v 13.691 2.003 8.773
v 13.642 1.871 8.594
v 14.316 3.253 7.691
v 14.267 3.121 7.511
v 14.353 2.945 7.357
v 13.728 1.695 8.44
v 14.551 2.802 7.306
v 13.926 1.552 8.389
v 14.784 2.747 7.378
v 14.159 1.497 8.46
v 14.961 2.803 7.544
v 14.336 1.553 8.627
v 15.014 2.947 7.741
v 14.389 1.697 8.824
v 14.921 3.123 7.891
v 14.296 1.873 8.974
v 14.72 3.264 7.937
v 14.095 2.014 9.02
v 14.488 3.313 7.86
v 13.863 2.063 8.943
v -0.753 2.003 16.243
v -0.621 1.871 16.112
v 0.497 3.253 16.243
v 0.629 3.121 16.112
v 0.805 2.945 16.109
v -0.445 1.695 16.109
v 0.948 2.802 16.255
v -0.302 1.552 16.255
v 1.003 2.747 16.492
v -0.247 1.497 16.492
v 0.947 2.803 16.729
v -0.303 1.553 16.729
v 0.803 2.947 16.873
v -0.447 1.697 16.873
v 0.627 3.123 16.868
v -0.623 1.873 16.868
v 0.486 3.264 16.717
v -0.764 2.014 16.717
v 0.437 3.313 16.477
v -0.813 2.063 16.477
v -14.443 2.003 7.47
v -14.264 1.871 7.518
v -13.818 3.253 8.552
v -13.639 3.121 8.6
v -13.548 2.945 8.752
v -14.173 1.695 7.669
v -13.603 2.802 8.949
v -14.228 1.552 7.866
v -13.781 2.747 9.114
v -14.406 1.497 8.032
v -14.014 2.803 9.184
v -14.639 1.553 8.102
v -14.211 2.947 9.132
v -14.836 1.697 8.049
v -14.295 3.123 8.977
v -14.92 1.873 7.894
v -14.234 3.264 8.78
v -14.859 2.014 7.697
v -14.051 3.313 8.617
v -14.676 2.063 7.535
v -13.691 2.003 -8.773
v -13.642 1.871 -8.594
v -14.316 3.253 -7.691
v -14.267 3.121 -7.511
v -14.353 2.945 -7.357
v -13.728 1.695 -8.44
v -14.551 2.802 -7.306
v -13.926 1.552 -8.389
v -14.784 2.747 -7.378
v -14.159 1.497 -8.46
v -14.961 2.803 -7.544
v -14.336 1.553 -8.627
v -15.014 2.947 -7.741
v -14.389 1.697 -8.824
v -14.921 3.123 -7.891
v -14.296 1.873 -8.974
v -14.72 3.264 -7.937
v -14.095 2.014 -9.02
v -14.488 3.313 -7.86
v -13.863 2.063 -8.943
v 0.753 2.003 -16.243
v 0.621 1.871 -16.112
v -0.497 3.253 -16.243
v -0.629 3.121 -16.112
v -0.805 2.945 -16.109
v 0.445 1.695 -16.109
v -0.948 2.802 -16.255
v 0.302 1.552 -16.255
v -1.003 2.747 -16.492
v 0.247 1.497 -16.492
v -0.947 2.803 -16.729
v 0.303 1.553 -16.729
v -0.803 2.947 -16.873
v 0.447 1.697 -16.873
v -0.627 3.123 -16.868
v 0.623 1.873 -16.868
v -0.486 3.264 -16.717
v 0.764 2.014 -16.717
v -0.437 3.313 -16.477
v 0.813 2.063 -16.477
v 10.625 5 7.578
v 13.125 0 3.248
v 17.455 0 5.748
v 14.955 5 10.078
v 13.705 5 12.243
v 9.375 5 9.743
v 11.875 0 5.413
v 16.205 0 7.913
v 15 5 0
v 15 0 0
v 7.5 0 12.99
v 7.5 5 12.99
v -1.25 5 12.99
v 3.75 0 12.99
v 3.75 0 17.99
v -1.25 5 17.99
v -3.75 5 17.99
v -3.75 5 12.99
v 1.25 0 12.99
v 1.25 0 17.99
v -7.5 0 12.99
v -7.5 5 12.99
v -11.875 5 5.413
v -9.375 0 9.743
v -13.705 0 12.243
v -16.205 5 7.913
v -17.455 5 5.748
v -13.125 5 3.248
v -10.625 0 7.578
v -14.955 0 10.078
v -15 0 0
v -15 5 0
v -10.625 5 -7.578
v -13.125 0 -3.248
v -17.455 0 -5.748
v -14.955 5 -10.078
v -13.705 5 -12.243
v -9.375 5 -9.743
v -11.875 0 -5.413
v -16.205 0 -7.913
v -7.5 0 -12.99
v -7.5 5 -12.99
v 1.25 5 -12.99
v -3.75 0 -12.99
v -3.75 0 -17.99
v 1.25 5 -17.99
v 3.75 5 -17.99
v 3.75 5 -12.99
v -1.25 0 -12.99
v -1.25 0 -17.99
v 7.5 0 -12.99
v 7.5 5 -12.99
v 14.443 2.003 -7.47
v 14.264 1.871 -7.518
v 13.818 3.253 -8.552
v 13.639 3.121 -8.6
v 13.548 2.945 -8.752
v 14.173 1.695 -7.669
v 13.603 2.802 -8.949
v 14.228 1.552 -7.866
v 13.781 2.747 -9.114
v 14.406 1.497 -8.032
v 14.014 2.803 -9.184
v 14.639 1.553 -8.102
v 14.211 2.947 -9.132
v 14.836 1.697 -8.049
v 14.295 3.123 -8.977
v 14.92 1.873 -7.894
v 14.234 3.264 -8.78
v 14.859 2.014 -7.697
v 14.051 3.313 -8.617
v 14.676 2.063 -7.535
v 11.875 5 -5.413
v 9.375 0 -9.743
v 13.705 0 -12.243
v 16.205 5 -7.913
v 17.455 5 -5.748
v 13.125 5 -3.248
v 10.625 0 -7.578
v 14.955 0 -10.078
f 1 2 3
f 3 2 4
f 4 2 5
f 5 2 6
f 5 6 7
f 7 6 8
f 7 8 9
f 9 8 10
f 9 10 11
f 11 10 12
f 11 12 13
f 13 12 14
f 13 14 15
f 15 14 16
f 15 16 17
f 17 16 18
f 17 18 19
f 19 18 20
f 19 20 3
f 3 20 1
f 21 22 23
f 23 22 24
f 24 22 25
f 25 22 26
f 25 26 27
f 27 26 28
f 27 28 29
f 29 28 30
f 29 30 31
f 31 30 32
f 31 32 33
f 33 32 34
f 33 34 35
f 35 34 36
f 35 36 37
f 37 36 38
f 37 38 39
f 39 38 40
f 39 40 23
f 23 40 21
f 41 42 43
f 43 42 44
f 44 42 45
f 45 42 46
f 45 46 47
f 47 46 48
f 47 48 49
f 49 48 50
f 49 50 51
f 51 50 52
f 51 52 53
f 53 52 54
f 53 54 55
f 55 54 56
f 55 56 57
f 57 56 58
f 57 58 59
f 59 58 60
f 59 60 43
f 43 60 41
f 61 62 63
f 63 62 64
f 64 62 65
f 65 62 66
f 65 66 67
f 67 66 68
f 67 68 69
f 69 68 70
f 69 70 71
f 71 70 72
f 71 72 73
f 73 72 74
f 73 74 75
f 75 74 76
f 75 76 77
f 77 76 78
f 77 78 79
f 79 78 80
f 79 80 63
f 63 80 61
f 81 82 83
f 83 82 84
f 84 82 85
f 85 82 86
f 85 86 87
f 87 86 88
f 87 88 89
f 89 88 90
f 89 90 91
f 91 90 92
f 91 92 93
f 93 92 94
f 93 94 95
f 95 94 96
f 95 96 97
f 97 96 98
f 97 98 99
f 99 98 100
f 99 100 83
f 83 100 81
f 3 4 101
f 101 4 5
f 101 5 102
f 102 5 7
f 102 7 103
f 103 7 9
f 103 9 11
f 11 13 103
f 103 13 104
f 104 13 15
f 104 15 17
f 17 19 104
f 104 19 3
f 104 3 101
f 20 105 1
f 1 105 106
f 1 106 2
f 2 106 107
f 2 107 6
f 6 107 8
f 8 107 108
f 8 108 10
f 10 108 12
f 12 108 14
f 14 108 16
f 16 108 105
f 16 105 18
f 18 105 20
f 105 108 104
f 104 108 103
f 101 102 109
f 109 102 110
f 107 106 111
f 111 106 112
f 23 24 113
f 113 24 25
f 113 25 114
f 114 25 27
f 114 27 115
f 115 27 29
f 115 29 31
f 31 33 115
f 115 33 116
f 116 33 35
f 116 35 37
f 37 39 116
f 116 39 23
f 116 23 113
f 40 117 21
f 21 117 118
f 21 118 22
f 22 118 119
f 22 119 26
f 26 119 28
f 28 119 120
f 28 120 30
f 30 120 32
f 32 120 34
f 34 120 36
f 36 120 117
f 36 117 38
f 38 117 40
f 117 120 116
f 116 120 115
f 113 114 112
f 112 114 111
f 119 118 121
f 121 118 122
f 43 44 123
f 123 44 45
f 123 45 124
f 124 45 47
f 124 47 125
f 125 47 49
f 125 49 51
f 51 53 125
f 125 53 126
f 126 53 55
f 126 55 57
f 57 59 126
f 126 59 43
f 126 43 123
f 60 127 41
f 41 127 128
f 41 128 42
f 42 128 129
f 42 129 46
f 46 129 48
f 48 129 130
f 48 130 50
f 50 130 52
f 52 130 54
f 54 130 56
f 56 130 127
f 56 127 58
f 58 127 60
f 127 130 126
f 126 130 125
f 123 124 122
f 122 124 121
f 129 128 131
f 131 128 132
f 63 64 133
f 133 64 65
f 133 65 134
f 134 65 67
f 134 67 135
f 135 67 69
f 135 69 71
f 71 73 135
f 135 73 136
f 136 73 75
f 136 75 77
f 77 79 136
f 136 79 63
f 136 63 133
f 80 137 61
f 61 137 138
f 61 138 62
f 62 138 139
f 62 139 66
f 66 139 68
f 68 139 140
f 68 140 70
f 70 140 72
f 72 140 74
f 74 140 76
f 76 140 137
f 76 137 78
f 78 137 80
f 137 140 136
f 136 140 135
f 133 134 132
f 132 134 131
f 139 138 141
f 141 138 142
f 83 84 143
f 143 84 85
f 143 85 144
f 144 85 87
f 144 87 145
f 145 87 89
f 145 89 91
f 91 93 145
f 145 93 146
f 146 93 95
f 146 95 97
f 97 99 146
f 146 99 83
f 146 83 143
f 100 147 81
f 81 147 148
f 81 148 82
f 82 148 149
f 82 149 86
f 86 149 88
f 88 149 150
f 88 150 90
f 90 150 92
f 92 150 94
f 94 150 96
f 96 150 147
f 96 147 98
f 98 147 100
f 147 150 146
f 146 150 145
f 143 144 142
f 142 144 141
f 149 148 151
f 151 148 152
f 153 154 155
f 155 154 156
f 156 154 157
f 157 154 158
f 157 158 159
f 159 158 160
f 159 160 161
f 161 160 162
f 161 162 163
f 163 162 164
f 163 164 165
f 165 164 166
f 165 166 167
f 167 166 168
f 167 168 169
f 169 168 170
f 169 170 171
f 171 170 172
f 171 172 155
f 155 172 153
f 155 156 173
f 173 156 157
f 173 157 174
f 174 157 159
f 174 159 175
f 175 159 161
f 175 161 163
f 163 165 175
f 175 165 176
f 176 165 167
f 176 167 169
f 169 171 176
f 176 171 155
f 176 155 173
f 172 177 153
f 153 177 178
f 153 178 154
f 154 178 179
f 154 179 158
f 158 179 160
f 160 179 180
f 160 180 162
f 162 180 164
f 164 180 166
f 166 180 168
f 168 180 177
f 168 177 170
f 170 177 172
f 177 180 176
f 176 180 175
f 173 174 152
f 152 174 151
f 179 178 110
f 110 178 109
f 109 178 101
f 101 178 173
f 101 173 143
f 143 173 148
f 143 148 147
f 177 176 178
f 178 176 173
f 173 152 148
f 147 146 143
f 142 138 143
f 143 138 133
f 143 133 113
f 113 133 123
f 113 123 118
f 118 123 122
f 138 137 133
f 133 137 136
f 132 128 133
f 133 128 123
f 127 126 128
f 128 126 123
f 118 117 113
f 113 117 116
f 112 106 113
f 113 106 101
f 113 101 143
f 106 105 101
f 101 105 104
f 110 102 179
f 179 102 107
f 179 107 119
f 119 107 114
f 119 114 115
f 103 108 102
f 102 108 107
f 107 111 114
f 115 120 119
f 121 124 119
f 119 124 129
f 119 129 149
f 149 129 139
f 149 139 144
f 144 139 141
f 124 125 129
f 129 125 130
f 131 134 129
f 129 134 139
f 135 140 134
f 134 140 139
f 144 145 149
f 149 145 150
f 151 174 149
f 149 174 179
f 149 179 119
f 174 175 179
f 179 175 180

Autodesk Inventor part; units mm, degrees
ref_plane "YZ Plane" through (0, 0, 0) normal (1, 0, 0) x (0, 1, 0)
ref_plane "XZ Plane" through (0, 0, 0) normal (0, 1, 0) x (-1, 0, 0)
ref_plane "XY Plane" through (0, 0, 0) normal (0, 0, 1) x (1, 0, 0)
sketch "Sketch1" plane through (0, 0, 0) normal (0, 1, 0) x (-1, 0, 0)
  circle A0 centre (0, 0) radius 15
  circle A1 centre (0, 0) radius 10
  line L0 (0, 0) -> (-15, 0)
  line L1 (-15, 0) -> (-7.5, 12.9904)
  line L2 (-7.5, 12.9904) -> (0, 0)
  line L3 (-7.5, 12.9904) -> (7.5, 12.9904)
  line L4 (7.5, 12.9904) -> (15, 0)
  line L5 (15, 0) -> (7.5, -12.9904)
  line L6 (7.5, -12.9904) -> (-7.5, -12.9904)
  line L7 (-7.5, -12.9904) -> (-15, 0)
  line L8 (0, 0) -> (7.5, 12.9904)
  line L9 (0, 0) -> (15, 0)
  line L10 (0, 0) -> (7.5, -12.9904)
  line L11 (0, 0) -> (-7.5, -12.9904)
extrude "Extrusion3" add sketch "Sketch1" along normal blind 5 contours L7 L0 A1 L11 | L11 A1 L0
sketch "Sketch5" plane through (7.5, 0, -12.9904) normal (0.866, 0, -0.5) x (-0.5, 0, -0.866)
  line L0 (-15, 0) -> (0, 0) projected
  line L1 (0, 0) -> (0, 5) projected
  line L2 (-15, 5) -> (0, 5) projected
  line L3 (-15, 0) -> (-15, 5) projected
  line L4 (0, 0) -> (-15, 5)
  line L5 (-15, 0) -> (0, 5)
  line L6 (-7.5, 2.5) -> (-7.5, 5)
  line L7 (-7.5, 5) -> (-10, 5)
  line L8 (-10, 5) -> (-7.5, 2.5)
  line L9 (-7.5, 2.5) -> (-5, 0)
  line L10 (-10, 5) -> (-8.75, 5)
  line L11 (-8.75, 5) -> (-3.75, 0)
  line L12 (-3.75, 0) -> (-6.25, 0)
  line L13 (-6.25, 0) -> (-11.25, 5)
  line L14 (-10, 5) -> (-11.25, 5)
  dimension "d18" = 2.5
  dimension "d19" = 2.5
extrude "Extrusion4" add sketch "Sketch5" along normal blind 5 contours L13 L5 L9 L0 | L13 L4 L5 | L9 L4 L11 L0 | L2 L8 L4 L13 | L5 L11 L4 | L6 L11 L5 | L8 L2 L11 L6
sketch "Sketch6" plane through (11.875, 5, -5.4127) normal (-0.3536, 0.7071, -0.6124) x (0.866, 0, -0.5)
  line L0 (0, 0) -> (0, 7.0711) projected
  line L1 (0, 0) -> (5, 0) projected
  line L2 (5, 7.0711) -> (5, 0) projected
  line L3 (0, 7.0711) -> (5, 7.0711) projected
  line L4 (0, 0) -> (5, 7.0711)
  line L5 (5, 0) -> (0, 7.0711)
  line L6 (2.5, 3.5355) -> (2.5, 2.7855)
  line L7 (2.5, 2.7855) -> (3.5, 2.7855)
  circle A0 centre (3.5, 2.7855) radius 0.4
  point P0 (3.2526, 2.4712)
  point P1 (3.1212, 2.657)
  dimension "d22" = 0.75
  dimension "d26" = 1
  dimension "d27" = 0.8
extrude "Extrusion5" cut sketch "Sketch6" against normal blind 5 contours L5 A0 picked at (3.3911, 2.7263)
pattern_circular "Circular Pattern1" count 6 over 360 about axis through (0, 0, 0) along (0, 1, 0) of "Extrusion3", "Extrusion4", "Extrusion5"
properties part number "hub"
